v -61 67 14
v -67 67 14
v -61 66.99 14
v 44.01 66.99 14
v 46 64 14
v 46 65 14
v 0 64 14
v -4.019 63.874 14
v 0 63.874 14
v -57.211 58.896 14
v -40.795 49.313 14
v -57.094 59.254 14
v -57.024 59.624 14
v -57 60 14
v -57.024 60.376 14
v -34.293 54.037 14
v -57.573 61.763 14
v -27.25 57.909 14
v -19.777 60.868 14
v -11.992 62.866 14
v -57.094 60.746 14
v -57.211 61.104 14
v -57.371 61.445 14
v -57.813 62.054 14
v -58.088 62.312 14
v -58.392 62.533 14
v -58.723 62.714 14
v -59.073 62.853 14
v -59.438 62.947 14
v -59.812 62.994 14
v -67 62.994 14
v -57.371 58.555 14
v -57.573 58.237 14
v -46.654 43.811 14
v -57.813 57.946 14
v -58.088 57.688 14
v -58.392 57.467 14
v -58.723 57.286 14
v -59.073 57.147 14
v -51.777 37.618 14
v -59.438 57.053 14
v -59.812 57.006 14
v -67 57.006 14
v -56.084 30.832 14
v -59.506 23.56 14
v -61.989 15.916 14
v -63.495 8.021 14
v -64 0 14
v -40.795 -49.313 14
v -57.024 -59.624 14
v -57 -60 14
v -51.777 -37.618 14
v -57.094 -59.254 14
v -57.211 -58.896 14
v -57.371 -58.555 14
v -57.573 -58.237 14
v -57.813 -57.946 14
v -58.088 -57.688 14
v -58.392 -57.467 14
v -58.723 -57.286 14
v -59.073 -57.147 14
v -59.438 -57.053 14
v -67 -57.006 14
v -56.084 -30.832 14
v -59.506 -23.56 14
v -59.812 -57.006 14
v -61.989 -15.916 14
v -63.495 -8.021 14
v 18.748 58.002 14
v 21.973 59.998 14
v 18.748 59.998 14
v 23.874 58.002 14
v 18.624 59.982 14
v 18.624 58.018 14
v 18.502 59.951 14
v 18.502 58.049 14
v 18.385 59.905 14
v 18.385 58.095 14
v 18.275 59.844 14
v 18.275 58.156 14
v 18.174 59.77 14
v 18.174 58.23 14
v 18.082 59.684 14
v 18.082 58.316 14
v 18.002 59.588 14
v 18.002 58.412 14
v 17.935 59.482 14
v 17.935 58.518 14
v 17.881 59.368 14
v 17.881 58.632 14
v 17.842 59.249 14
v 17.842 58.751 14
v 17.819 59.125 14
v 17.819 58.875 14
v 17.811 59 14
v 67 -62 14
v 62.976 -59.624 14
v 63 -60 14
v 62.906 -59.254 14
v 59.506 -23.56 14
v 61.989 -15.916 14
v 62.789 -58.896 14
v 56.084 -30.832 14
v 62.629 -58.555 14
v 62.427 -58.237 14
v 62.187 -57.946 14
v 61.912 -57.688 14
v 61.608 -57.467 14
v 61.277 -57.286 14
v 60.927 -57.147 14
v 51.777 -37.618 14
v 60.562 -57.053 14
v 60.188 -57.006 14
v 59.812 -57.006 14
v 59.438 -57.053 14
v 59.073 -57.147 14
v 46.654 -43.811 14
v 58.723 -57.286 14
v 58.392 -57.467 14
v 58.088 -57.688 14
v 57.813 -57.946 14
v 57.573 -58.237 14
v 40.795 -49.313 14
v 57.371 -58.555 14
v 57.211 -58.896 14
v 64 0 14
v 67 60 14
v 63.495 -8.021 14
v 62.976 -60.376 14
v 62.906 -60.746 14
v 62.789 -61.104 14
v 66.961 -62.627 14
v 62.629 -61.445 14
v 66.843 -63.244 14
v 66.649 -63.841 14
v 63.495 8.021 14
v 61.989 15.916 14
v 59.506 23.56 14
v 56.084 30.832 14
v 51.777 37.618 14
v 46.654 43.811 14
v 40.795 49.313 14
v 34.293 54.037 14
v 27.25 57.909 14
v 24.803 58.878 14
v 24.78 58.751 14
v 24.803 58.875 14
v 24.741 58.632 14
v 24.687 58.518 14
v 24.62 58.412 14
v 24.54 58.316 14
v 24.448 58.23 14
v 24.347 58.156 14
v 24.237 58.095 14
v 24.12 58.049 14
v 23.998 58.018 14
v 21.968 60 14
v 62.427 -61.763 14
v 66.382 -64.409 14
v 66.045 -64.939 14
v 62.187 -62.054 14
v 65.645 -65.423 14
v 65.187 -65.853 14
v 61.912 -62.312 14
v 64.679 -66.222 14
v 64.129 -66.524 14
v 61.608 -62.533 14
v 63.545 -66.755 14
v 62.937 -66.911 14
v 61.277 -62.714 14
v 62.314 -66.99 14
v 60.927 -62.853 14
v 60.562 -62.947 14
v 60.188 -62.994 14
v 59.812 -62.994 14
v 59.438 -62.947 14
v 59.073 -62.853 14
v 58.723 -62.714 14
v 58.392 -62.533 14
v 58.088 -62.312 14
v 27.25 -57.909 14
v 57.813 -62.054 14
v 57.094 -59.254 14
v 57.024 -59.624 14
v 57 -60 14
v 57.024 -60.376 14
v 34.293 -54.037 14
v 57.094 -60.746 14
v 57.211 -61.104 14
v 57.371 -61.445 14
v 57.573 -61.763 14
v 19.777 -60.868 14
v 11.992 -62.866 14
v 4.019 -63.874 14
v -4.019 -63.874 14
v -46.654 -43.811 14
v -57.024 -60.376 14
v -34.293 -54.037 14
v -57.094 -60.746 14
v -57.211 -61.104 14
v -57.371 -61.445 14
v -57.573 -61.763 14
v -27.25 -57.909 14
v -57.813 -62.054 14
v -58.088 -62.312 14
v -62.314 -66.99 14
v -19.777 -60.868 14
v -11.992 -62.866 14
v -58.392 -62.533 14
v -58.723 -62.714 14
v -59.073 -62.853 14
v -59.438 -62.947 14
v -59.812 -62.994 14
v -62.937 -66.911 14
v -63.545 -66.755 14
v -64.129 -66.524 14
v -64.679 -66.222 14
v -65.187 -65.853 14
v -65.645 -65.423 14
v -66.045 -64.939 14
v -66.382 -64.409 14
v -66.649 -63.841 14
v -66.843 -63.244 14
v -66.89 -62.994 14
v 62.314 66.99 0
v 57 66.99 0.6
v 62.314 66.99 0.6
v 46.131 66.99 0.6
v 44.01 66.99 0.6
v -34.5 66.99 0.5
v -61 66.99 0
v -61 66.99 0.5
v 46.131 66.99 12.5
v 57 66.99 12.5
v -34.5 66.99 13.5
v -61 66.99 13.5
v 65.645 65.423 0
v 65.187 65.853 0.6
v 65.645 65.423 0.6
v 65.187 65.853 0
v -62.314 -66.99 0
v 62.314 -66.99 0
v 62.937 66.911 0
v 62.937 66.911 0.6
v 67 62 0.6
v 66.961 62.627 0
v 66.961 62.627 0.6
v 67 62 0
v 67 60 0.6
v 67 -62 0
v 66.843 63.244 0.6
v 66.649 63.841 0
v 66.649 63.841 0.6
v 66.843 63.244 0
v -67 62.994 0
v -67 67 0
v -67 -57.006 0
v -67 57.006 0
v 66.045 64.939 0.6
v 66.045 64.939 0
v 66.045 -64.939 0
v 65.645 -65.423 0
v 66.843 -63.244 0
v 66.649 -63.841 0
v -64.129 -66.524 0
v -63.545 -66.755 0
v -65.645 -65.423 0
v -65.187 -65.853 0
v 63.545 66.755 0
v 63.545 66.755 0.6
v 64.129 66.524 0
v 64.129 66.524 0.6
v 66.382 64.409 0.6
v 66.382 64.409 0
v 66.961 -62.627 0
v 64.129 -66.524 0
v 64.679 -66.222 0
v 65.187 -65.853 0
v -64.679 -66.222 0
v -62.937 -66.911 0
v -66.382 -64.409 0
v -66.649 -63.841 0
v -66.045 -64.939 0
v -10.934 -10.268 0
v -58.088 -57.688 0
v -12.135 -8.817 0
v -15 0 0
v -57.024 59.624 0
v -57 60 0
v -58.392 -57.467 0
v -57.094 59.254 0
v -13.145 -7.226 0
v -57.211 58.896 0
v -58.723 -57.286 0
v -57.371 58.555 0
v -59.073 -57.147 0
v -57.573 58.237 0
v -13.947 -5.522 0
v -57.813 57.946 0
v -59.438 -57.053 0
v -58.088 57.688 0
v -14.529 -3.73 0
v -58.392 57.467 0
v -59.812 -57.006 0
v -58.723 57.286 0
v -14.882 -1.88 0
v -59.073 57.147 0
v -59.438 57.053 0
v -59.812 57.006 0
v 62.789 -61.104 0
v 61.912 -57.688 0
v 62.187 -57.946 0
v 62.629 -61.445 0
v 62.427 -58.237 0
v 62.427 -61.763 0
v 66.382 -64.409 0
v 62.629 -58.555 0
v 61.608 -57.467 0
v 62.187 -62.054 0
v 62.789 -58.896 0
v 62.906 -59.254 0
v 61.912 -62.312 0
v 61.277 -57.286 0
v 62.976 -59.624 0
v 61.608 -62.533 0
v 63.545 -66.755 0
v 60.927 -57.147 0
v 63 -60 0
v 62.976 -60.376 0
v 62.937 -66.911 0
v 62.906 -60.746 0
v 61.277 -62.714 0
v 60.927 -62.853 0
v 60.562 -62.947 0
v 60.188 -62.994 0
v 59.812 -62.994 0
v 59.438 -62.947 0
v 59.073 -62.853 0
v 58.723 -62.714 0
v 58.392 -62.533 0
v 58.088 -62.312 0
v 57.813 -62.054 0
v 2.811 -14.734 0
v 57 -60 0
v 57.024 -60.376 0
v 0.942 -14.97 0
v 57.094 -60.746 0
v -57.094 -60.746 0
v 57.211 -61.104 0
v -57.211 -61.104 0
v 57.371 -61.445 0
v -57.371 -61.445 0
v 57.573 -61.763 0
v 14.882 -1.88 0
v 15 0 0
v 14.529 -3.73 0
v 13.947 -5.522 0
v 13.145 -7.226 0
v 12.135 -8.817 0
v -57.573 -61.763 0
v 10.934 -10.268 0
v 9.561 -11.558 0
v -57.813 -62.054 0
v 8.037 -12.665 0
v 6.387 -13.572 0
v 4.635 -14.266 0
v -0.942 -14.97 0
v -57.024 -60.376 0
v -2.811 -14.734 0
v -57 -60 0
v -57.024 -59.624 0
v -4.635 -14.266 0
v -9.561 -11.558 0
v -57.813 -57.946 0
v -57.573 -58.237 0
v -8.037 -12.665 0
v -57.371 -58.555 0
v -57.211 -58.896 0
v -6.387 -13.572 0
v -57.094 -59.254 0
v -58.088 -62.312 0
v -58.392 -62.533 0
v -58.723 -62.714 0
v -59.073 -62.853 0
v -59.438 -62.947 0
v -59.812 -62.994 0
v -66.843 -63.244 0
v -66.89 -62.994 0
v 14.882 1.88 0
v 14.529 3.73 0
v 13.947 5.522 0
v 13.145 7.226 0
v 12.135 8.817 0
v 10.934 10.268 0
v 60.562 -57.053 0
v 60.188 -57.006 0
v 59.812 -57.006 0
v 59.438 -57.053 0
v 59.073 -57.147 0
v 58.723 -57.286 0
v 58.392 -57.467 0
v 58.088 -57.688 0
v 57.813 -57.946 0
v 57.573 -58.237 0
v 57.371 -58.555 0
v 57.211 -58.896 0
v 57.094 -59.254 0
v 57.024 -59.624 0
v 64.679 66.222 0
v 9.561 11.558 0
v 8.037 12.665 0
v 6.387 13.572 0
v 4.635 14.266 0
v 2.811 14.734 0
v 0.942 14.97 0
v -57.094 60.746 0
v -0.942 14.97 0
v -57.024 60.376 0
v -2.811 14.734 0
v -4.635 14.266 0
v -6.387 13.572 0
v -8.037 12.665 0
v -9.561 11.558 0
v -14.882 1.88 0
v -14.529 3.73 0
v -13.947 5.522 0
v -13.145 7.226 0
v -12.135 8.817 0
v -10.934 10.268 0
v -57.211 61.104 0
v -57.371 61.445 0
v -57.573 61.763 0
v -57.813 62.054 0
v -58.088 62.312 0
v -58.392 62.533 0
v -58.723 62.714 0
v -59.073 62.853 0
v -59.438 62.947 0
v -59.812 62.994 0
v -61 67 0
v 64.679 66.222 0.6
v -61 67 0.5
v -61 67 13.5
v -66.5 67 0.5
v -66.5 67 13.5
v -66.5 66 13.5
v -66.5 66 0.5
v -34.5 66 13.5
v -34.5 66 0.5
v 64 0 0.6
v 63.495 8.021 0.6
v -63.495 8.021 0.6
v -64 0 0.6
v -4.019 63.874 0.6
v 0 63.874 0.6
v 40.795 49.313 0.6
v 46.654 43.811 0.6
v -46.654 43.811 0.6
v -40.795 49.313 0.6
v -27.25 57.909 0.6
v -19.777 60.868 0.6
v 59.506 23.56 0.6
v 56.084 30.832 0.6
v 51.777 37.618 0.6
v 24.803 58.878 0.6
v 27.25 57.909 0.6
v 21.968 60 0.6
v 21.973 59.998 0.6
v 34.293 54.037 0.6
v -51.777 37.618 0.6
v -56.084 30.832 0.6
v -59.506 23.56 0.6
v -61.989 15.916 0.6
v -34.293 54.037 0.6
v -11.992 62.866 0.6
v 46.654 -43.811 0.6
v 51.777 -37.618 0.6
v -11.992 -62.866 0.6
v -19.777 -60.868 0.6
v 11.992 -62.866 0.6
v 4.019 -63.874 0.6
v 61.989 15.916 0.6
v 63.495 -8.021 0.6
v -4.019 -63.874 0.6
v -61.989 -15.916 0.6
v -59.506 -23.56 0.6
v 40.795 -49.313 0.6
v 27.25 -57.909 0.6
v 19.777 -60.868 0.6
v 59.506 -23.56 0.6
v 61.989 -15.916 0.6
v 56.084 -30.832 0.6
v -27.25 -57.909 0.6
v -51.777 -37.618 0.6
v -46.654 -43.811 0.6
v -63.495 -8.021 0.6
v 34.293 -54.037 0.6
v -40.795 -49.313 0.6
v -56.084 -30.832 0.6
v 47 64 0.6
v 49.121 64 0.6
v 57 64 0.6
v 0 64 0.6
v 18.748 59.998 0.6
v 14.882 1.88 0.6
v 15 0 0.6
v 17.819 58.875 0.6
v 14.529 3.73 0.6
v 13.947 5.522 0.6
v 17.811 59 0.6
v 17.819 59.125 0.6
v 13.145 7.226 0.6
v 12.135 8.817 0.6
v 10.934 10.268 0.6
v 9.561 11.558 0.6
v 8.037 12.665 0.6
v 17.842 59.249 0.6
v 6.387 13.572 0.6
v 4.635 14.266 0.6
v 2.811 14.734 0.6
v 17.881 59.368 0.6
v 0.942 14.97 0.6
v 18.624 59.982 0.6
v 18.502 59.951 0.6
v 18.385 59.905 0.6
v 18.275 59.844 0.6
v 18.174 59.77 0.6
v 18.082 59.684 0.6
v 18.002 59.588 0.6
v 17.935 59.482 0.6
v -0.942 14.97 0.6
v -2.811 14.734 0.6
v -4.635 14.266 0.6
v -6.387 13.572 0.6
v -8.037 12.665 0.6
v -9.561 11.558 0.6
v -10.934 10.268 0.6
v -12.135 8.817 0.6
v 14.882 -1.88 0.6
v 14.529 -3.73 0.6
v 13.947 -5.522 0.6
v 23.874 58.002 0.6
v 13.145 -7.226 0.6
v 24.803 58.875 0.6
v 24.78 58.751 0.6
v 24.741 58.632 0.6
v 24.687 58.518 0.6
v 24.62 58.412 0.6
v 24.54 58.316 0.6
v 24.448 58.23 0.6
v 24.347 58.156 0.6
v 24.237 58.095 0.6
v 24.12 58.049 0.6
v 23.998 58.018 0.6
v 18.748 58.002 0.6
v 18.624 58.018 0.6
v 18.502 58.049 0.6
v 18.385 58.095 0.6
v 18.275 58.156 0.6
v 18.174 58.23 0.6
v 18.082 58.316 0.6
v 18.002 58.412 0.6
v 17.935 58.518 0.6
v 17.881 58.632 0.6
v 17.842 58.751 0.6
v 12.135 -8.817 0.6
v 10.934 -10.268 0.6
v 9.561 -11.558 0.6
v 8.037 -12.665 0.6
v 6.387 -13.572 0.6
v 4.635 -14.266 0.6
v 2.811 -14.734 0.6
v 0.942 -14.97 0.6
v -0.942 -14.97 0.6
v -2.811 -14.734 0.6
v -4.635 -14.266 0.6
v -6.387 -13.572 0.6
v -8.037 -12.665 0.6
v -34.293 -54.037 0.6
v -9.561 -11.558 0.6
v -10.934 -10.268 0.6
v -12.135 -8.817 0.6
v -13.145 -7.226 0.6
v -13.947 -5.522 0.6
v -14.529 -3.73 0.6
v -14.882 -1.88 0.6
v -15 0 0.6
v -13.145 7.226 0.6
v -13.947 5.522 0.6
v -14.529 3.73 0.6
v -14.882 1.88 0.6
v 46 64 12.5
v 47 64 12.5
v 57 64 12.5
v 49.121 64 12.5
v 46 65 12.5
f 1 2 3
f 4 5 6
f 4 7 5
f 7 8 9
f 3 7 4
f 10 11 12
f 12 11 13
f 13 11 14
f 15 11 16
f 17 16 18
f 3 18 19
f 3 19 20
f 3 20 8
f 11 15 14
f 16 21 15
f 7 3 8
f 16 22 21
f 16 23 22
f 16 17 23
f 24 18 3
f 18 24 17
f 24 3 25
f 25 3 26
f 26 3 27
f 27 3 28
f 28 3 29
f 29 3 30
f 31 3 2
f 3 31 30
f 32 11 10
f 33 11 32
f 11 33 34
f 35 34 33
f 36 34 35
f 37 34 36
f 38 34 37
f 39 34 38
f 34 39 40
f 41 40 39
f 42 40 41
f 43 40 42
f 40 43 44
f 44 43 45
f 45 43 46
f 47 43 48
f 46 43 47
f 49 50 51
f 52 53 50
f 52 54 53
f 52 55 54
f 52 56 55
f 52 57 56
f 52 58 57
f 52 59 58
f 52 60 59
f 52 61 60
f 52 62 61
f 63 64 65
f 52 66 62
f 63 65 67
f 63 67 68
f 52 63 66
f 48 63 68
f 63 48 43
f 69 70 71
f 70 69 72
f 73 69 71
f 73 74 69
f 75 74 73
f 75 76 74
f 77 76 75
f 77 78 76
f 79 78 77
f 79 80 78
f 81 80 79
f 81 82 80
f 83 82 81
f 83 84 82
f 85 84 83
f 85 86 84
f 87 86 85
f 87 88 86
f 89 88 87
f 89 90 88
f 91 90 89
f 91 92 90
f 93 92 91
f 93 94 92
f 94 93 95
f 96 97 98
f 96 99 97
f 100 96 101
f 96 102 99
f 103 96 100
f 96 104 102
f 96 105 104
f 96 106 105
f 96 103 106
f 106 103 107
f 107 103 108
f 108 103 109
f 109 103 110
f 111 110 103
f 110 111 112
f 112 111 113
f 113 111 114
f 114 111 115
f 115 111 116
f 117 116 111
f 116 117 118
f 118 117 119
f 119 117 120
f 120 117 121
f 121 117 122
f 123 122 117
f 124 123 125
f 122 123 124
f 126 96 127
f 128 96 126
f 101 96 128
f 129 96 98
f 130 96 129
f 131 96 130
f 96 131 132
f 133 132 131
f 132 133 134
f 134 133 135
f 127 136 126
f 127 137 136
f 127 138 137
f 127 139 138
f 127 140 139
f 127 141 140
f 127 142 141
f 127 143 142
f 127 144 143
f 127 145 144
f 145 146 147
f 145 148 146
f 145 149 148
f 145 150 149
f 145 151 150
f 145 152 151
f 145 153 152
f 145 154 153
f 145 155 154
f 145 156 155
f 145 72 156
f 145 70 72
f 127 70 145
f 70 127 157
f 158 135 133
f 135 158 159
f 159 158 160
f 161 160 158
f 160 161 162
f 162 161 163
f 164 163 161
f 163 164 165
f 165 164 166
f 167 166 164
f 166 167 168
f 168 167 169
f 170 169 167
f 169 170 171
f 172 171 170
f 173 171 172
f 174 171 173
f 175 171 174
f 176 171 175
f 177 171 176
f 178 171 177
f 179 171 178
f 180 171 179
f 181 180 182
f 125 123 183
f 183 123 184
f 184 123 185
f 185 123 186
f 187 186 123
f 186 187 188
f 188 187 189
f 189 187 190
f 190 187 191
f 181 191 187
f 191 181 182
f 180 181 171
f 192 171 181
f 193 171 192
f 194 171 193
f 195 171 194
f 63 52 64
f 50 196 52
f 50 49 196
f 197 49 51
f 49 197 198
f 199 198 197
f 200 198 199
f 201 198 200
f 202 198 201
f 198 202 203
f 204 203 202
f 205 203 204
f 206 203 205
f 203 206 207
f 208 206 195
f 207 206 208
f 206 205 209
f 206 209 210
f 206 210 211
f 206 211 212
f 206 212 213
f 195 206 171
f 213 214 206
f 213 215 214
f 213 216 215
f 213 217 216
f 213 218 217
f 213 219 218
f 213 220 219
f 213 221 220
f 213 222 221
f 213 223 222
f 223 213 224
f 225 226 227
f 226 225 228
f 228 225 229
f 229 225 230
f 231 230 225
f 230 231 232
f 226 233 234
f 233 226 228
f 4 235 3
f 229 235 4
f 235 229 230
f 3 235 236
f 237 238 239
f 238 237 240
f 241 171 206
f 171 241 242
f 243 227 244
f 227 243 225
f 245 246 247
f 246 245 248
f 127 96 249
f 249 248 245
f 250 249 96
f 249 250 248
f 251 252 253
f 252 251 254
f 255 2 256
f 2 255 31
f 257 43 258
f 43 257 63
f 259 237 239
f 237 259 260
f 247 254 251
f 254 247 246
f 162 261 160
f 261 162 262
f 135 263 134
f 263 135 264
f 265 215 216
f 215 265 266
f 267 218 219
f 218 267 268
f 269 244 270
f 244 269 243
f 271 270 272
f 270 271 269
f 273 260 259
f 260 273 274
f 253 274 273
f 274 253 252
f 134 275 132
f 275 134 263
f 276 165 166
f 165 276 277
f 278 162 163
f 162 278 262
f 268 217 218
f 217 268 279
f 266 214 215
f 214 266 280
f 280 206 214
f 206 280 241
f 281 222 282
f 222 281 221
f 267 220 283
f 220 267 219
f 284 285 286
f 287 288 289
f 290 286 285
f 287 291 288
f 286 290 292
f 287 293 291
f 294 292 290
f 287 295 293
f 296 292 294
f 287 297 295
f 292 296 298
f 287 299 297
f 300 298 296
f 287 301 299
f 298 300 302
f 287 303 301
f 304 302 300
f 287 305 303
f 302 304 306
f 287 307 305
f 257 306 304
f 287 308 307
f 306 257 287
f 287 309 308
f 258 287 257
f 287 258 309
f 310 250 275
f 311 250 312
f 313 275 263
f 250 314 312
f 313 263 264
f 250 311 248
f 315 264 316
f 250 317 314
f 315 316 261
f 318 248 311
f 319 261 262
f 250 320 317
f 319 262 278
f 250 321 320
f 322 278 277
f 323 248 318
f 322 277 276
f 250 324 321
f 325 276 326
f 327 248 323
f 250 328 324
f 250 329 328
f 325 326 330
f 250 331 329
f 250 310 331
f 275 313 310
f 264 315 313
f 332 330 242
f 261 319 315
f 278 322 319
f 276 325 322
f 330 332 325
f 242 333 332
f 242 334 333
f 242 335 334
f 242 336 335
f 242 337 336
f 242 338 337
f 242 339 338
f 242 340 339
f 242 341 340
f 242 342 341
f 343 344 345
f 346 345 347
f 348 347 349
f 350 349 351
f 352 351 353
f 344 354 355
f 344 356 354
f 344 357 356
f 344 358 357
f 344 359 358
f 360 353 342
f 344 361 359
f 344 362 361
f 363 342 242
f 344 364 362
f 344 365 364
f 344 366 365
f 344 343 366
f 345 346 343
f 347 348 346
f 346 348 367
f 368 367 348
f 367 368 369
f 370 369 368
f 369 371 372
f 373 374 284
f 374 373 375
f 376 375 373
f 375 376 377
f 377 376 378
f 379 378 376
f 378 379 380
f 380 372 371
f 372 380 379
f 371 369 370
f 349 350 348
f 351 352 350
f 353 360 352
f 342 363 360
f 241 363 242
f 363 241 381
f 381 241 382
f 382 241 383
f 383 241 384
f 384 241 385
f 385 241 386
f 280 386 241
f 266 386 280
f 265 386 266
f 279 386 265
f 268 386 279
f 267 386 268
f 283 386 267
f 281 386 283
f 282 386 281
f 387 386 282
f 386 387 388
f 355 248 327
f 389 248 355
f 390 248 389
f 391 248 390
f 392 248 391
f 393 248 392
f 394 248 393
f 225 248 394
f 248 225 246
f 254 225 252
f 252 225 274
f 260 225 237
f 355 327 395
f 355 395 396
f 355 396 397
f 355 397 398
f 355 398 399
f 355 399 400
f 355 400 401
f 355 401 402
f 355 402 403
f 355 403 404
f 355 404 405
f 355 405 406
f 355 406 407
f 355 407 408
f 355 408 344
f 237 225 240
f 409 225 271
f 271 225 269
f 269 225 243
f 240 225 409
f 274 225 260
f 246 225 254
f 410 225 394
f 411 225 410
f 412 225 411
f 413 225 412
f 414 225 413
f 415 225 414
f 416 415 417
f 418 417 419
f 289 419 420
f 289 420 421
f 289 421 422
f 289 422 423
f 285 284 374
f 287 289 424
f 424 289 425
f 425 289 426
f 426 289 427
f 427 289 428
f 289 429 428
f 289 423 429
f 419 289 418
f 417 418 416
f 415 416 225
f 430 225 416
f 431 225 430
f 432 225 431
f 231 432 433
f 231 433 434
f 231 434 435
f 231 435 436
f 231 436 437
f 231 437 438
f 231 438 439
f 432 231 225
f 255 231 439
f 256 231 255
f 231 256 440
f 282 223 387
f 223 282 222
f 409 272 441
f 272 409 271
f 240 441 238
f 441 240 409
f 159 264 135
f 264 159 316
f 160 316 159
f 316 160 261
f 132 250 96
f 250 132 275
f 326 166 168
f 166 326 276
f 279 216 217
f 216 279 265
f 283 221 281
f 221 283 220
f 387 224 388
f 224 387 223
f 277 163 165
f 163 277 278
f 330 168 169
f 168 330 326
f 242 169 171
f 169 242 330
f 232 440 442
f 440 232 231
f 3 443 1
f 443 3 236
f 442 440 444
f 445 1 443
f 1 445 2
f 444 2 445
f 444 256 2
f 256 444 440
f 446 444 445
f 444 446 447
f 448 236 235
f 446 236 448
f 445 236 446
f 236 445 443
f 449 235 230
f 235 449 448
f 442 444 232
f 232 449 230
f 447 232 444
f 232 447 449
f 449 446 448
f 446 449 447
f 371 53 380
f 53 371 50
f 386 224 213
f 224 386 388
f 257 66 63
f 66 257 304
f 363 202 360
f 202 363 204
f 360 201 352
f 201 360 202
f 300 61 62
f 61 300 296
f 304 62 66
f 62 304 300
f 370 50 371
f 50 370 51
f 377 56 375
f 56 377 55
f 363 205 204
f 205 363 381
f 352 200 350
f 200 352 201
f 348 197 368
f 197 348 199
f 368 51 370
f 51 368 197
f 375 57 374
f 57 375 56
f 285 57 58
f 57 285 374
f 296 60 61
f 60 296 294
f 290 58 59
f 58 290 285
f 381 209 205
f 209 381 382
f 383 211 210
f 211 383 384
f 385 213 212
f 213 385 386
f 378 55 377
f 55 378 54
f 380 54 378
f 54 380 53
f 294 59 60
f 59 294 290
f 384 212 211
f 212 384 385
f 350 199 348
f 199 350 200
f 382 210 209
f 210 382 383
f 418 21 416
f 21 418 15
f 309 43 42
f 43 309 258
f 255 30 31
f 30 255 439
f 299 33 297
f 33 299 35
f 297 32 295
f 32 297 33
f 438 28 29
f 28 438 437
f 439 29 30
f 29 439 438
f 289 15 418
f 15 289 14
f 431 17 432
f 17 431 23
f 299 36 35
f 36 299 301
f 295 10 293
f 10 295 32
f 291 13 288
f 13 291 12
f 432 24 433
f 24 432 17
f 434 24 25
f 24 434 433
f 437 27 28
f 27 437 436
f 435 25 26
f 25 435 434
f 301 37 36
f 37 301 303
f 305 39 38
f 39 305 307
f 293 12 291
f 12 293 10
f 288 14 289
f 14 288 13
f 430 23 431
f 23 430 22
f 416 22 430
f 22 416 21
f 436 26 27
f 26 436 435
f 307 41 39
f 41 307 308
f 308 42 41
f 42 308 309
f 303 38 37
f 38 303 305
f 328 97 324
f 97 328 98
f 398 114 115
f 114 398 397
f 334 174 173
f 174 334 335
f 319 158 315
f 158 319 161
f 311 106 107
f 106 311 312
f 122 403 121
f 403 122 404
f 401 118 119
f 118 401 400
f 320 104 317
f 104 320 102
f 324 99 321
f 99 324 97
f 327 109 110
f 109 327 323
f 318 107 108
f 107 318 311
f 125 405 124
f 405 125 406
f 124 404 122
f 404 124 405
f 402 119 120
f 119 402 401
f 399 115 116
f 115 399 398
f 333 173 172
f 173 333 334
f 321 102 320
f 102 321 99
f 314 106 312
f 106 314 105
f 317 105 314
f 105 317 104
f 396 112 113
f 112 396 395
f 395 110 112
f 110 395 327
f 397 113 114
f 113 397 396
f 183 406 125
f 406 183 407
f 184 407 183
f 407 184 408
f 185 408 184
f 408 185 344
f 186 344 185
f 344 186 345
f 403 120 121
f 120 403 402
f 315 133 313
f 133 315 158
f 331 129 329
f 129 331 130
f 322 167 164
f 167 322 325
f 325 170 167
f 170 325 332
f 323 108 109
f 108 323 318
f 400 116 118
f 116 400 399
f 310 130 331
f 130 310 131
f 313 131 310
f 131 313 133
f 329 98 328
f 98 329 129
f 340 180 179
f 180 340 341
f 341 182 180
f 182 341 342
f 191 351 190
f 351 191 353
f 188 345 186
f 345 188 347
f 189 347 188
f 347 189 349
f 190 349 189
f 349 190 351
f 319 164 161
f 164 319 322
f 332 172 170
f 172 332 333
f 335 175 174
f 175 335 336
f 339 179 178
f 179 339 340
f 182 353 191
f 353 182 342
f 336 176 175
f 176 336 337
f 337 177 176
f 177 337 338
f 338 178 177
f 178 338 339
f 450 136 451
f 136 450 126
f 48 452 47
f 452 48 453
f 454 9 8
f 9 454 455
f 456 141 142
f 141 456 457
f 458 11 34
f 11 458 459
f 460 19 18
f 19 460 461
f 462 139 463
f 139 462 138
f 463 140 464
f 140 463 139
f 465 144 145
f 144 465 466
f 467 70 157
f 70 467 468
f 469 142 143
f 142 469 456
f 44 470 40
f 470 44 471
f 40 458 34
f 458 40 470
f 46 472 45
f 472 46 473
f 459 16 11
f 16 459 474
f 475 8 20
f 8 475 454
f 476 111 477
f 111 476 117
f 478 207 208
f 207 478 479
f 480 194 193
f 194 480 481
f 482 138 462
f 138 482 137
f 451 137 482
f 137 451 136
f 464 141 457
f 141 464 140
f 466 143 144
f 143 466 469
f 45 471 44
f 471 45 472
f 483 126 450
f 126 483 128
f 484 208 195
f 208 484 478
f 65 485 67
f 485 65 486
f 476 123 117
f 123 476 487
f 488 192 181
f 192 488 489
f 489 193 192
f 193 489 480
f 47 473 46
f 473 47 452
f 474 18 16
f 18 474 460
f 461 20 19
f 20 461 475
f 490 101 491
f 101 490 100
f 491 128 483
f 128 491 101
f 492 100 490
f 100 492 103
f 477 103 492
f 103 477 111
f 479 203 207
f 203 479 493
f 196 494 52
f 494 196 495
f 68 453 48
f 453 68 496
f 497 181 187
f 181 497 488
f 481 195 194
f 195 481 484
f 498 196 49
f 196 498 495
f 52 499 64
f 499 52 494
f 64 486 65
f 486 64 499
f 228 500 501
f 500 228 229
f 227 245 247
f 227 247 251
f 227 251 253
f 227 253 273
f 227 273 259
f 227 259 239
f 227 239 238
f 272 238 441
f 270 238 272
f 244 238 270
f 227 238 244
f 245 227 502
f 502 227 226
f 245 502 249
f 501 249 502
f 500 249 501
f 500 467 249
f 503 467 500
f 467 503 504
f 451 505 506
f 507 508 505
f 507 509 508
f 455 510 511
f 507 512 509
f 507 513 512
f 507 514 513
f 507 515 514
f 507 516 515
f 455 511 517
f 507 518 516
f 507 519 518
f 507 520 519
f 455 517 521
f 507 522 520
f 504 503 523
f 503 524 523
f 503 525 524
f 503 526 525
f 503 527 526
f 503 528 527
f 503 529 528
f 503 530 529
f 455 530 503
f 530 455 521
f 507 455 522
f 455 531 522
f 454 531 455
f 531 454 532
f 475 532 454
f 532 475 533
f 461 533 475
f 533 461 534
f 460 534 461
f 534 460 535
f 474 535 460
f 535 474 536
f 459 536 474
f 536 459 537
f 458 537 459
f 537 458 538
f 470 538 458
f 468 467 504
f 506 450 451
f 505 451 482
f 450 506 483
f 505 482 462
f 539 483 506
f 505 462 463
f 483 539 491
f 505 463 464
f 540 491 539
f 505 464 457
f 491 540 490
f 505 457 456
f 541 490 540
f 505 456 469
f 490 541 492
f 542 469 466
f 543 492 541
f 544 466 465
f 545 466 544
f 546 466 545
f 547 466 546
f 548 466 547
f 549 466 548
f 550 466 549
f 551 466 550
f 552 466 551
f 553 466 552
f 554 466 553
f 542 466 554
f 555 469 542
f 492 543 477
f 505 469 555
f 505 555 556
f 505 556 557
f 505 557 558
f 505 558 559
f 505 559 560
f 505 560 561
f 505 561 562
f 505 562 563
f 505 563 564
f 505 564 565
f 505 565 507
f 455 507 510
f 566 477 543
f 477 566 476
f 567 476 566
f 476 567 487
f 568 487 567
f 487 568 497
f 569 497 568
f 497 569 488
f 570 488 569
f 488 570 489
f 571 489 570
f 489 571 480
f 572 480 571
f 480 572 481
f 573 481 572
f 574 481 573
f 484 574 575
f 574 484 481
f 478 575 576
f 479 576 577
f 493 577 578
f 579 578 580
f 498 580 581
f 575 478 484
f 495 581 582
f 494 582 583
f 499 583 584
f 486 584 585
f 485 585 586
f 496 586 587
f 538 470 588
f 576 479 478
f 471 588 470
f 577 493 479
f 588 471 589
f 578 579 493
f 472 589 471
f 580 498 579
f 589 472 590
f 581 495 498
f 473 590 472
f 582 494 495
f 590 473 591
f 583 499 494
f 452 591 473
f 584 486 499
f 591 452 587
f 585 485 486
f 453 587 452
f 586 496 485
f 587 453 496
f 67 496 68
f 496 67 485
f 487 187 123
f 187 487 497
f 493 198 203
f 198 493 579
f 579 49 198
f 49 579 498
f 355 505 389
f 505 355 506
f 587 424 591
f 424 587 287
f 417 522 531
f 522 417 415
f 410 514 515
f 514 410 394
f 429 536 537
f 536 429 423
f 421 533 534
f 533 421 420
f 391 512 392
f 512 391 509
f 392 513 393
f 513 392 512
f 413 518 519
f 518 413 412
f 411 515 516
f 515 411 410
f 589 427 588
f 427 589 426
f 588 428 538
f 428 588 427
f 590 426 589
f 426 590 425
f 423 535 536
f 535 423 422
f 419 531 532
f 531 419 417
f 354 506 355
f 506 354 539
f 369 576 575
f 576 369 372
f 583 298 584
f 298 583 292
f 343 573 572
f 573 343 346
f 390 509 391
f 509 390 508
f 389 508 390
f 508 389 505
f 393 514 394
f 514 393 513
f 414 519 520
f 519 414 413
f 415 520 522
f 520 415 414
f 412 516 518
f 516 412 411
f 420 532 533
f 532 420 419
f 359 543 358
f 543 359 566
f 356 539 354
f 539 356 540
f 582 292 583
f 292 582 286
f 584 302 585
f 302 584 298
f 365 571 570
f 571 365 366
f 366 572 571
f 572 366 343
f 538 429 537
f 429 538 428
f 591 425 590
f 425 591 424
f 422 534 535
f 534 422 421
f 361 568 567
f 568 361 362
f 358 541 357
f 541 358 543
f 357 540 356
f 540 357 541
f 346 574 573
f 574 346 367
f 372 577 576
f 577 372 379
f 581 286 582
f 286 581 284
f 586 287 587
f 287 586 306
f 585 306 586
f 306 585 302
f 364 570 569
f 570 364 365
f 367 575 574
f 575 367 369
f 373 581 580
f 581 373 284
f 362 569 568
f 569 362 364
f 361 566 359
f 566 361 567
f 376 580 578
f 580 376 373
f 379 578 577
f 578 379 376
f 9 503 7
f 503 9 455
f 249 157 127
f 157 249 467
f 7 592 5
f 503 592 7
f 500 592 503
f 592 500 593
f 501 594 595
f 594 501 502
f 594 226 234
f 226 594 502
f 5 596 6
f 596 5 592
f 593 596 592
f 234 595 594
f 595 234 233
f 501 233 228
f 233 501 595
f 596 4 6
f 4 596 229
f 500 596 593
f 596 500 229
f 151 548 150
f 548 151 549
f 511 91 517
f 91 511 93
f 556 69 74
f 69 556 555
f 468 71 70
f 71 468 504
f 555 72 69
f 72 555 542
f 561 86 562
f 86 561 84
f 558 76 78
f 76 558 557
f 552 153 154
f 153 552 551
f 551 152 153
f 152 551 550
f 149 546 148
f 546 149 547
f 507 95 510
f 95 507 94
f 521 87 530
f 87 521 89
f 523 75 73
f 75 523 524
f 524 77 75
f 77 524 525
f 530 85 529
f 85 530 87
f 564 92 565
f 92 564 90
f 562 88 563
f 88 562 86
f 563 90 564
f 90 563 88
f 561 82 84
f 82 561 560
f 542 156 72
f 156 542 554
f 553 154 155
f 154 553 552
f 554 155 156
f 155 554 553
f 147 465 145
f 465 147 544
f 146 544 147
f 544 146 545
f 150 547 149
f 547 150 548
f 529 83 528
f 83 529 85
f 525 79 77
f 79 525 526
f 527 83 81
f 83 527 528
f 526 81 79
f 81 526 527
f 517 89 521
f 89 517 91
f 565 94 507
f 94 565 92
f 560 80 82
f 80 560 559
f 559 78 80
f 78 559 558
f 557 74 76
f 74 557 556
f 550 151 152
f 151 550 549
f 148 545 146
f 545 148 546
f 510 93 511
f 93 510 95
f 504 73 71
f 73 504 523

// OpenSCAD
$fn = 50;


union() {
	difference() {
		union() {
			translate(v = [0, 0, 0]) {
				rotate(a = [0, 0, 0]) {
					hull() {
						translate(v = [-62.0000000000, 62.0000000000, 0]) {
							rotate(a = [0, 0, 0]) {
								translate(v = [0, 0, 0]) {
									rotate(a = [0, 0, 0]) {
										cylinder(h = 14, r = 5);
									}
								}
							}
						}
						translate(v = [62.0000000000, 62.0000000000, 0]) {
							rotate(a = [0, 0, 0]) {
								translate(v = [0, 0, 0]) {
									rotate(a = [0, 0, 0]) {
										cylinder(h = 14, r = 5);
									}
								}
							}
						}
						translate(v = [-62.0000000000, -62.0000000000, 0]) {
							rotate(a = [0, 0, 0]) {
								translate(v = [0, 0, 0]) {
									rotate(a = [0, 0, 0]) {
										cylinder(h = 14, r = 5);
									}
								}
							}
						}
						translate(v = [62.0000000000, -62.0000000000, 0]) {
							rotate(a = [0, 0, 0]) {
								translate(v = [0, 0, 0]) {
									rotate(a = [0, 0, 0]) {
										cylinder(h = 14, r = 5);
									}
								}
							}
						}
					}
				}
			}
			translate(v = [-67.0000000000, 61.0000000000, 0]) {
				rotate(a = [0, 0, 0]) {
					cube(size = [6, 6, 14]);
				}
			}
		}
		union() {
			#translate(v = [-66.5000000000, 66.0000000000, 0.5000000000]) {
				rotate(a = [0, 0, 0]) {
					cube(size = [32, 1, 13.0000000000]);
				}
			}
			translate(v = [-67.5000000000, -60.0000000000, -125]) {
				rotate(a = [0, 0, 0]) {
					hull() {
						translate(v = [7.5000000000, 0, 0]) {
							rotate(a = [0, 0, 0]) {
								translate(v = [0, 0, 0]) {
									rotate(a = [0, 0, 0]) {
										cylinder(h = 250, r = 3.0000000000);
									}
								}
							}
						}
						translate(v = [-7.5000000000, 0, 0]) {
							rotate(a = [0, 0, 0]) {
								translate(v = [0, 0, 0]) {
									rotate(a = [0, 0, 0]) {
										cylinder(h = 250, r = 3.0000000000);
									}
								}
							}
						}
					}
				}
			}
			translate(v = [-67.5000000000, 60.0000000000, -125]) {
				rotate(a = [0, 0, 0]) {
					hull() {
						translate(v = [7.5000000000, 0, 0]) {
							rotate(a = [0, 0, 0]) {
								translate(v = [0, 0, 0]) {
									rotate(a = [0, 0, 0]) {
										cylinder(h = 250, r = 3.0000000000);
									}
								}
							}
						}
						translate(v = [-7.5000000000, 0, 0]) {
							rotate(a = [0, 0, 0]) {
								translate(v = [0, 0, 0]) {
									rotate(a = [0, 0, 0]) {
										cylinder(h = 250, r = 3.0000000000);
									}
								}
							}
						}
					}
				}
			}
			translate(v = [60.0000000000, -60.0000000000, -125.0000000000]) {
				rotate(a = [0, 0, 0]) {
					cylinder(h = 250, r = 3.0000000000);
				}
			}
			translate(v = [0, 0, 0.6000000000]) {
				rotate(a = [0, 0, 0]) {
					cylinder(h = 16.4000000000, r = 64.0000000000);
				}
			}
			translate(v = [0, 0, -7.0000000000]) {
				rotate(a = [0, 0, 0]) {
					cylinder(h = 14, r = 15.0000000000);
				}
			}
			translate(v = [0.0000000000, 60.0000000000, 0.6000000000]) {
				rotate(a = [0, 0, 0]) {
					cube(size = [67.0000000000, 4, 16.4000000000]);
				}
			}
			translate(v = [57.0000000000, 60.0000000000, 0.6000000000]) {
				rotate(a = [0, 0, 0]) {
					cube(size = [10, 7, 16.4000000000]);
				}
			}
			translate(v = [46.0000000000, 60.0000000000, 12.5000000000]) {
				rotate(a = [0, 0, 0]) {
					cube(size = [21, 7, 1.5000000000]);
				}
			}
			translate(v = [43.2500000000, 67.7500000000, 0.6000000000]) {
				rotate(a = [0, 0, -45]) {
					cube(size = [7.5000000000, 1.5000000000, 16.4000000000]);
				}
			}
			translate(v = [12.0610000000, 58.0000000000, 0.6000000000]) {
				rotate(a = [0, 0, 0]) {
					cube(size = [7.5000000000, 2, 13.4000000000]);
				}
			}
		}
	}
	union() {
		translate(v = [21.3110000000, 59.0000000000, 0]) {
			rotate(a = [0, 0, 0]) {
				hull() {
					translate(v = [2.5000000000, 0, 0]) {
						rotate(a = [0, 0, 0]) {
							#translate(v = [0, 0, 0]) {
								rotate(a = [0, 0, 0]) {
									cylinder(h = 14, r = 1.0000000000);
								}
							}
						}
					}
					translate(v = [-2.5000000000, 0, 0]) {
						rotate(a = [0, 0, 0]) {
							#translate(v = [0, 0, 0]) {
								rotate(a = [0, 0, 0]) {
									cylinder(h = 14, r = 1.0000000000);
								}
							}
						}
					}
				}
			}
		}
	}
}
